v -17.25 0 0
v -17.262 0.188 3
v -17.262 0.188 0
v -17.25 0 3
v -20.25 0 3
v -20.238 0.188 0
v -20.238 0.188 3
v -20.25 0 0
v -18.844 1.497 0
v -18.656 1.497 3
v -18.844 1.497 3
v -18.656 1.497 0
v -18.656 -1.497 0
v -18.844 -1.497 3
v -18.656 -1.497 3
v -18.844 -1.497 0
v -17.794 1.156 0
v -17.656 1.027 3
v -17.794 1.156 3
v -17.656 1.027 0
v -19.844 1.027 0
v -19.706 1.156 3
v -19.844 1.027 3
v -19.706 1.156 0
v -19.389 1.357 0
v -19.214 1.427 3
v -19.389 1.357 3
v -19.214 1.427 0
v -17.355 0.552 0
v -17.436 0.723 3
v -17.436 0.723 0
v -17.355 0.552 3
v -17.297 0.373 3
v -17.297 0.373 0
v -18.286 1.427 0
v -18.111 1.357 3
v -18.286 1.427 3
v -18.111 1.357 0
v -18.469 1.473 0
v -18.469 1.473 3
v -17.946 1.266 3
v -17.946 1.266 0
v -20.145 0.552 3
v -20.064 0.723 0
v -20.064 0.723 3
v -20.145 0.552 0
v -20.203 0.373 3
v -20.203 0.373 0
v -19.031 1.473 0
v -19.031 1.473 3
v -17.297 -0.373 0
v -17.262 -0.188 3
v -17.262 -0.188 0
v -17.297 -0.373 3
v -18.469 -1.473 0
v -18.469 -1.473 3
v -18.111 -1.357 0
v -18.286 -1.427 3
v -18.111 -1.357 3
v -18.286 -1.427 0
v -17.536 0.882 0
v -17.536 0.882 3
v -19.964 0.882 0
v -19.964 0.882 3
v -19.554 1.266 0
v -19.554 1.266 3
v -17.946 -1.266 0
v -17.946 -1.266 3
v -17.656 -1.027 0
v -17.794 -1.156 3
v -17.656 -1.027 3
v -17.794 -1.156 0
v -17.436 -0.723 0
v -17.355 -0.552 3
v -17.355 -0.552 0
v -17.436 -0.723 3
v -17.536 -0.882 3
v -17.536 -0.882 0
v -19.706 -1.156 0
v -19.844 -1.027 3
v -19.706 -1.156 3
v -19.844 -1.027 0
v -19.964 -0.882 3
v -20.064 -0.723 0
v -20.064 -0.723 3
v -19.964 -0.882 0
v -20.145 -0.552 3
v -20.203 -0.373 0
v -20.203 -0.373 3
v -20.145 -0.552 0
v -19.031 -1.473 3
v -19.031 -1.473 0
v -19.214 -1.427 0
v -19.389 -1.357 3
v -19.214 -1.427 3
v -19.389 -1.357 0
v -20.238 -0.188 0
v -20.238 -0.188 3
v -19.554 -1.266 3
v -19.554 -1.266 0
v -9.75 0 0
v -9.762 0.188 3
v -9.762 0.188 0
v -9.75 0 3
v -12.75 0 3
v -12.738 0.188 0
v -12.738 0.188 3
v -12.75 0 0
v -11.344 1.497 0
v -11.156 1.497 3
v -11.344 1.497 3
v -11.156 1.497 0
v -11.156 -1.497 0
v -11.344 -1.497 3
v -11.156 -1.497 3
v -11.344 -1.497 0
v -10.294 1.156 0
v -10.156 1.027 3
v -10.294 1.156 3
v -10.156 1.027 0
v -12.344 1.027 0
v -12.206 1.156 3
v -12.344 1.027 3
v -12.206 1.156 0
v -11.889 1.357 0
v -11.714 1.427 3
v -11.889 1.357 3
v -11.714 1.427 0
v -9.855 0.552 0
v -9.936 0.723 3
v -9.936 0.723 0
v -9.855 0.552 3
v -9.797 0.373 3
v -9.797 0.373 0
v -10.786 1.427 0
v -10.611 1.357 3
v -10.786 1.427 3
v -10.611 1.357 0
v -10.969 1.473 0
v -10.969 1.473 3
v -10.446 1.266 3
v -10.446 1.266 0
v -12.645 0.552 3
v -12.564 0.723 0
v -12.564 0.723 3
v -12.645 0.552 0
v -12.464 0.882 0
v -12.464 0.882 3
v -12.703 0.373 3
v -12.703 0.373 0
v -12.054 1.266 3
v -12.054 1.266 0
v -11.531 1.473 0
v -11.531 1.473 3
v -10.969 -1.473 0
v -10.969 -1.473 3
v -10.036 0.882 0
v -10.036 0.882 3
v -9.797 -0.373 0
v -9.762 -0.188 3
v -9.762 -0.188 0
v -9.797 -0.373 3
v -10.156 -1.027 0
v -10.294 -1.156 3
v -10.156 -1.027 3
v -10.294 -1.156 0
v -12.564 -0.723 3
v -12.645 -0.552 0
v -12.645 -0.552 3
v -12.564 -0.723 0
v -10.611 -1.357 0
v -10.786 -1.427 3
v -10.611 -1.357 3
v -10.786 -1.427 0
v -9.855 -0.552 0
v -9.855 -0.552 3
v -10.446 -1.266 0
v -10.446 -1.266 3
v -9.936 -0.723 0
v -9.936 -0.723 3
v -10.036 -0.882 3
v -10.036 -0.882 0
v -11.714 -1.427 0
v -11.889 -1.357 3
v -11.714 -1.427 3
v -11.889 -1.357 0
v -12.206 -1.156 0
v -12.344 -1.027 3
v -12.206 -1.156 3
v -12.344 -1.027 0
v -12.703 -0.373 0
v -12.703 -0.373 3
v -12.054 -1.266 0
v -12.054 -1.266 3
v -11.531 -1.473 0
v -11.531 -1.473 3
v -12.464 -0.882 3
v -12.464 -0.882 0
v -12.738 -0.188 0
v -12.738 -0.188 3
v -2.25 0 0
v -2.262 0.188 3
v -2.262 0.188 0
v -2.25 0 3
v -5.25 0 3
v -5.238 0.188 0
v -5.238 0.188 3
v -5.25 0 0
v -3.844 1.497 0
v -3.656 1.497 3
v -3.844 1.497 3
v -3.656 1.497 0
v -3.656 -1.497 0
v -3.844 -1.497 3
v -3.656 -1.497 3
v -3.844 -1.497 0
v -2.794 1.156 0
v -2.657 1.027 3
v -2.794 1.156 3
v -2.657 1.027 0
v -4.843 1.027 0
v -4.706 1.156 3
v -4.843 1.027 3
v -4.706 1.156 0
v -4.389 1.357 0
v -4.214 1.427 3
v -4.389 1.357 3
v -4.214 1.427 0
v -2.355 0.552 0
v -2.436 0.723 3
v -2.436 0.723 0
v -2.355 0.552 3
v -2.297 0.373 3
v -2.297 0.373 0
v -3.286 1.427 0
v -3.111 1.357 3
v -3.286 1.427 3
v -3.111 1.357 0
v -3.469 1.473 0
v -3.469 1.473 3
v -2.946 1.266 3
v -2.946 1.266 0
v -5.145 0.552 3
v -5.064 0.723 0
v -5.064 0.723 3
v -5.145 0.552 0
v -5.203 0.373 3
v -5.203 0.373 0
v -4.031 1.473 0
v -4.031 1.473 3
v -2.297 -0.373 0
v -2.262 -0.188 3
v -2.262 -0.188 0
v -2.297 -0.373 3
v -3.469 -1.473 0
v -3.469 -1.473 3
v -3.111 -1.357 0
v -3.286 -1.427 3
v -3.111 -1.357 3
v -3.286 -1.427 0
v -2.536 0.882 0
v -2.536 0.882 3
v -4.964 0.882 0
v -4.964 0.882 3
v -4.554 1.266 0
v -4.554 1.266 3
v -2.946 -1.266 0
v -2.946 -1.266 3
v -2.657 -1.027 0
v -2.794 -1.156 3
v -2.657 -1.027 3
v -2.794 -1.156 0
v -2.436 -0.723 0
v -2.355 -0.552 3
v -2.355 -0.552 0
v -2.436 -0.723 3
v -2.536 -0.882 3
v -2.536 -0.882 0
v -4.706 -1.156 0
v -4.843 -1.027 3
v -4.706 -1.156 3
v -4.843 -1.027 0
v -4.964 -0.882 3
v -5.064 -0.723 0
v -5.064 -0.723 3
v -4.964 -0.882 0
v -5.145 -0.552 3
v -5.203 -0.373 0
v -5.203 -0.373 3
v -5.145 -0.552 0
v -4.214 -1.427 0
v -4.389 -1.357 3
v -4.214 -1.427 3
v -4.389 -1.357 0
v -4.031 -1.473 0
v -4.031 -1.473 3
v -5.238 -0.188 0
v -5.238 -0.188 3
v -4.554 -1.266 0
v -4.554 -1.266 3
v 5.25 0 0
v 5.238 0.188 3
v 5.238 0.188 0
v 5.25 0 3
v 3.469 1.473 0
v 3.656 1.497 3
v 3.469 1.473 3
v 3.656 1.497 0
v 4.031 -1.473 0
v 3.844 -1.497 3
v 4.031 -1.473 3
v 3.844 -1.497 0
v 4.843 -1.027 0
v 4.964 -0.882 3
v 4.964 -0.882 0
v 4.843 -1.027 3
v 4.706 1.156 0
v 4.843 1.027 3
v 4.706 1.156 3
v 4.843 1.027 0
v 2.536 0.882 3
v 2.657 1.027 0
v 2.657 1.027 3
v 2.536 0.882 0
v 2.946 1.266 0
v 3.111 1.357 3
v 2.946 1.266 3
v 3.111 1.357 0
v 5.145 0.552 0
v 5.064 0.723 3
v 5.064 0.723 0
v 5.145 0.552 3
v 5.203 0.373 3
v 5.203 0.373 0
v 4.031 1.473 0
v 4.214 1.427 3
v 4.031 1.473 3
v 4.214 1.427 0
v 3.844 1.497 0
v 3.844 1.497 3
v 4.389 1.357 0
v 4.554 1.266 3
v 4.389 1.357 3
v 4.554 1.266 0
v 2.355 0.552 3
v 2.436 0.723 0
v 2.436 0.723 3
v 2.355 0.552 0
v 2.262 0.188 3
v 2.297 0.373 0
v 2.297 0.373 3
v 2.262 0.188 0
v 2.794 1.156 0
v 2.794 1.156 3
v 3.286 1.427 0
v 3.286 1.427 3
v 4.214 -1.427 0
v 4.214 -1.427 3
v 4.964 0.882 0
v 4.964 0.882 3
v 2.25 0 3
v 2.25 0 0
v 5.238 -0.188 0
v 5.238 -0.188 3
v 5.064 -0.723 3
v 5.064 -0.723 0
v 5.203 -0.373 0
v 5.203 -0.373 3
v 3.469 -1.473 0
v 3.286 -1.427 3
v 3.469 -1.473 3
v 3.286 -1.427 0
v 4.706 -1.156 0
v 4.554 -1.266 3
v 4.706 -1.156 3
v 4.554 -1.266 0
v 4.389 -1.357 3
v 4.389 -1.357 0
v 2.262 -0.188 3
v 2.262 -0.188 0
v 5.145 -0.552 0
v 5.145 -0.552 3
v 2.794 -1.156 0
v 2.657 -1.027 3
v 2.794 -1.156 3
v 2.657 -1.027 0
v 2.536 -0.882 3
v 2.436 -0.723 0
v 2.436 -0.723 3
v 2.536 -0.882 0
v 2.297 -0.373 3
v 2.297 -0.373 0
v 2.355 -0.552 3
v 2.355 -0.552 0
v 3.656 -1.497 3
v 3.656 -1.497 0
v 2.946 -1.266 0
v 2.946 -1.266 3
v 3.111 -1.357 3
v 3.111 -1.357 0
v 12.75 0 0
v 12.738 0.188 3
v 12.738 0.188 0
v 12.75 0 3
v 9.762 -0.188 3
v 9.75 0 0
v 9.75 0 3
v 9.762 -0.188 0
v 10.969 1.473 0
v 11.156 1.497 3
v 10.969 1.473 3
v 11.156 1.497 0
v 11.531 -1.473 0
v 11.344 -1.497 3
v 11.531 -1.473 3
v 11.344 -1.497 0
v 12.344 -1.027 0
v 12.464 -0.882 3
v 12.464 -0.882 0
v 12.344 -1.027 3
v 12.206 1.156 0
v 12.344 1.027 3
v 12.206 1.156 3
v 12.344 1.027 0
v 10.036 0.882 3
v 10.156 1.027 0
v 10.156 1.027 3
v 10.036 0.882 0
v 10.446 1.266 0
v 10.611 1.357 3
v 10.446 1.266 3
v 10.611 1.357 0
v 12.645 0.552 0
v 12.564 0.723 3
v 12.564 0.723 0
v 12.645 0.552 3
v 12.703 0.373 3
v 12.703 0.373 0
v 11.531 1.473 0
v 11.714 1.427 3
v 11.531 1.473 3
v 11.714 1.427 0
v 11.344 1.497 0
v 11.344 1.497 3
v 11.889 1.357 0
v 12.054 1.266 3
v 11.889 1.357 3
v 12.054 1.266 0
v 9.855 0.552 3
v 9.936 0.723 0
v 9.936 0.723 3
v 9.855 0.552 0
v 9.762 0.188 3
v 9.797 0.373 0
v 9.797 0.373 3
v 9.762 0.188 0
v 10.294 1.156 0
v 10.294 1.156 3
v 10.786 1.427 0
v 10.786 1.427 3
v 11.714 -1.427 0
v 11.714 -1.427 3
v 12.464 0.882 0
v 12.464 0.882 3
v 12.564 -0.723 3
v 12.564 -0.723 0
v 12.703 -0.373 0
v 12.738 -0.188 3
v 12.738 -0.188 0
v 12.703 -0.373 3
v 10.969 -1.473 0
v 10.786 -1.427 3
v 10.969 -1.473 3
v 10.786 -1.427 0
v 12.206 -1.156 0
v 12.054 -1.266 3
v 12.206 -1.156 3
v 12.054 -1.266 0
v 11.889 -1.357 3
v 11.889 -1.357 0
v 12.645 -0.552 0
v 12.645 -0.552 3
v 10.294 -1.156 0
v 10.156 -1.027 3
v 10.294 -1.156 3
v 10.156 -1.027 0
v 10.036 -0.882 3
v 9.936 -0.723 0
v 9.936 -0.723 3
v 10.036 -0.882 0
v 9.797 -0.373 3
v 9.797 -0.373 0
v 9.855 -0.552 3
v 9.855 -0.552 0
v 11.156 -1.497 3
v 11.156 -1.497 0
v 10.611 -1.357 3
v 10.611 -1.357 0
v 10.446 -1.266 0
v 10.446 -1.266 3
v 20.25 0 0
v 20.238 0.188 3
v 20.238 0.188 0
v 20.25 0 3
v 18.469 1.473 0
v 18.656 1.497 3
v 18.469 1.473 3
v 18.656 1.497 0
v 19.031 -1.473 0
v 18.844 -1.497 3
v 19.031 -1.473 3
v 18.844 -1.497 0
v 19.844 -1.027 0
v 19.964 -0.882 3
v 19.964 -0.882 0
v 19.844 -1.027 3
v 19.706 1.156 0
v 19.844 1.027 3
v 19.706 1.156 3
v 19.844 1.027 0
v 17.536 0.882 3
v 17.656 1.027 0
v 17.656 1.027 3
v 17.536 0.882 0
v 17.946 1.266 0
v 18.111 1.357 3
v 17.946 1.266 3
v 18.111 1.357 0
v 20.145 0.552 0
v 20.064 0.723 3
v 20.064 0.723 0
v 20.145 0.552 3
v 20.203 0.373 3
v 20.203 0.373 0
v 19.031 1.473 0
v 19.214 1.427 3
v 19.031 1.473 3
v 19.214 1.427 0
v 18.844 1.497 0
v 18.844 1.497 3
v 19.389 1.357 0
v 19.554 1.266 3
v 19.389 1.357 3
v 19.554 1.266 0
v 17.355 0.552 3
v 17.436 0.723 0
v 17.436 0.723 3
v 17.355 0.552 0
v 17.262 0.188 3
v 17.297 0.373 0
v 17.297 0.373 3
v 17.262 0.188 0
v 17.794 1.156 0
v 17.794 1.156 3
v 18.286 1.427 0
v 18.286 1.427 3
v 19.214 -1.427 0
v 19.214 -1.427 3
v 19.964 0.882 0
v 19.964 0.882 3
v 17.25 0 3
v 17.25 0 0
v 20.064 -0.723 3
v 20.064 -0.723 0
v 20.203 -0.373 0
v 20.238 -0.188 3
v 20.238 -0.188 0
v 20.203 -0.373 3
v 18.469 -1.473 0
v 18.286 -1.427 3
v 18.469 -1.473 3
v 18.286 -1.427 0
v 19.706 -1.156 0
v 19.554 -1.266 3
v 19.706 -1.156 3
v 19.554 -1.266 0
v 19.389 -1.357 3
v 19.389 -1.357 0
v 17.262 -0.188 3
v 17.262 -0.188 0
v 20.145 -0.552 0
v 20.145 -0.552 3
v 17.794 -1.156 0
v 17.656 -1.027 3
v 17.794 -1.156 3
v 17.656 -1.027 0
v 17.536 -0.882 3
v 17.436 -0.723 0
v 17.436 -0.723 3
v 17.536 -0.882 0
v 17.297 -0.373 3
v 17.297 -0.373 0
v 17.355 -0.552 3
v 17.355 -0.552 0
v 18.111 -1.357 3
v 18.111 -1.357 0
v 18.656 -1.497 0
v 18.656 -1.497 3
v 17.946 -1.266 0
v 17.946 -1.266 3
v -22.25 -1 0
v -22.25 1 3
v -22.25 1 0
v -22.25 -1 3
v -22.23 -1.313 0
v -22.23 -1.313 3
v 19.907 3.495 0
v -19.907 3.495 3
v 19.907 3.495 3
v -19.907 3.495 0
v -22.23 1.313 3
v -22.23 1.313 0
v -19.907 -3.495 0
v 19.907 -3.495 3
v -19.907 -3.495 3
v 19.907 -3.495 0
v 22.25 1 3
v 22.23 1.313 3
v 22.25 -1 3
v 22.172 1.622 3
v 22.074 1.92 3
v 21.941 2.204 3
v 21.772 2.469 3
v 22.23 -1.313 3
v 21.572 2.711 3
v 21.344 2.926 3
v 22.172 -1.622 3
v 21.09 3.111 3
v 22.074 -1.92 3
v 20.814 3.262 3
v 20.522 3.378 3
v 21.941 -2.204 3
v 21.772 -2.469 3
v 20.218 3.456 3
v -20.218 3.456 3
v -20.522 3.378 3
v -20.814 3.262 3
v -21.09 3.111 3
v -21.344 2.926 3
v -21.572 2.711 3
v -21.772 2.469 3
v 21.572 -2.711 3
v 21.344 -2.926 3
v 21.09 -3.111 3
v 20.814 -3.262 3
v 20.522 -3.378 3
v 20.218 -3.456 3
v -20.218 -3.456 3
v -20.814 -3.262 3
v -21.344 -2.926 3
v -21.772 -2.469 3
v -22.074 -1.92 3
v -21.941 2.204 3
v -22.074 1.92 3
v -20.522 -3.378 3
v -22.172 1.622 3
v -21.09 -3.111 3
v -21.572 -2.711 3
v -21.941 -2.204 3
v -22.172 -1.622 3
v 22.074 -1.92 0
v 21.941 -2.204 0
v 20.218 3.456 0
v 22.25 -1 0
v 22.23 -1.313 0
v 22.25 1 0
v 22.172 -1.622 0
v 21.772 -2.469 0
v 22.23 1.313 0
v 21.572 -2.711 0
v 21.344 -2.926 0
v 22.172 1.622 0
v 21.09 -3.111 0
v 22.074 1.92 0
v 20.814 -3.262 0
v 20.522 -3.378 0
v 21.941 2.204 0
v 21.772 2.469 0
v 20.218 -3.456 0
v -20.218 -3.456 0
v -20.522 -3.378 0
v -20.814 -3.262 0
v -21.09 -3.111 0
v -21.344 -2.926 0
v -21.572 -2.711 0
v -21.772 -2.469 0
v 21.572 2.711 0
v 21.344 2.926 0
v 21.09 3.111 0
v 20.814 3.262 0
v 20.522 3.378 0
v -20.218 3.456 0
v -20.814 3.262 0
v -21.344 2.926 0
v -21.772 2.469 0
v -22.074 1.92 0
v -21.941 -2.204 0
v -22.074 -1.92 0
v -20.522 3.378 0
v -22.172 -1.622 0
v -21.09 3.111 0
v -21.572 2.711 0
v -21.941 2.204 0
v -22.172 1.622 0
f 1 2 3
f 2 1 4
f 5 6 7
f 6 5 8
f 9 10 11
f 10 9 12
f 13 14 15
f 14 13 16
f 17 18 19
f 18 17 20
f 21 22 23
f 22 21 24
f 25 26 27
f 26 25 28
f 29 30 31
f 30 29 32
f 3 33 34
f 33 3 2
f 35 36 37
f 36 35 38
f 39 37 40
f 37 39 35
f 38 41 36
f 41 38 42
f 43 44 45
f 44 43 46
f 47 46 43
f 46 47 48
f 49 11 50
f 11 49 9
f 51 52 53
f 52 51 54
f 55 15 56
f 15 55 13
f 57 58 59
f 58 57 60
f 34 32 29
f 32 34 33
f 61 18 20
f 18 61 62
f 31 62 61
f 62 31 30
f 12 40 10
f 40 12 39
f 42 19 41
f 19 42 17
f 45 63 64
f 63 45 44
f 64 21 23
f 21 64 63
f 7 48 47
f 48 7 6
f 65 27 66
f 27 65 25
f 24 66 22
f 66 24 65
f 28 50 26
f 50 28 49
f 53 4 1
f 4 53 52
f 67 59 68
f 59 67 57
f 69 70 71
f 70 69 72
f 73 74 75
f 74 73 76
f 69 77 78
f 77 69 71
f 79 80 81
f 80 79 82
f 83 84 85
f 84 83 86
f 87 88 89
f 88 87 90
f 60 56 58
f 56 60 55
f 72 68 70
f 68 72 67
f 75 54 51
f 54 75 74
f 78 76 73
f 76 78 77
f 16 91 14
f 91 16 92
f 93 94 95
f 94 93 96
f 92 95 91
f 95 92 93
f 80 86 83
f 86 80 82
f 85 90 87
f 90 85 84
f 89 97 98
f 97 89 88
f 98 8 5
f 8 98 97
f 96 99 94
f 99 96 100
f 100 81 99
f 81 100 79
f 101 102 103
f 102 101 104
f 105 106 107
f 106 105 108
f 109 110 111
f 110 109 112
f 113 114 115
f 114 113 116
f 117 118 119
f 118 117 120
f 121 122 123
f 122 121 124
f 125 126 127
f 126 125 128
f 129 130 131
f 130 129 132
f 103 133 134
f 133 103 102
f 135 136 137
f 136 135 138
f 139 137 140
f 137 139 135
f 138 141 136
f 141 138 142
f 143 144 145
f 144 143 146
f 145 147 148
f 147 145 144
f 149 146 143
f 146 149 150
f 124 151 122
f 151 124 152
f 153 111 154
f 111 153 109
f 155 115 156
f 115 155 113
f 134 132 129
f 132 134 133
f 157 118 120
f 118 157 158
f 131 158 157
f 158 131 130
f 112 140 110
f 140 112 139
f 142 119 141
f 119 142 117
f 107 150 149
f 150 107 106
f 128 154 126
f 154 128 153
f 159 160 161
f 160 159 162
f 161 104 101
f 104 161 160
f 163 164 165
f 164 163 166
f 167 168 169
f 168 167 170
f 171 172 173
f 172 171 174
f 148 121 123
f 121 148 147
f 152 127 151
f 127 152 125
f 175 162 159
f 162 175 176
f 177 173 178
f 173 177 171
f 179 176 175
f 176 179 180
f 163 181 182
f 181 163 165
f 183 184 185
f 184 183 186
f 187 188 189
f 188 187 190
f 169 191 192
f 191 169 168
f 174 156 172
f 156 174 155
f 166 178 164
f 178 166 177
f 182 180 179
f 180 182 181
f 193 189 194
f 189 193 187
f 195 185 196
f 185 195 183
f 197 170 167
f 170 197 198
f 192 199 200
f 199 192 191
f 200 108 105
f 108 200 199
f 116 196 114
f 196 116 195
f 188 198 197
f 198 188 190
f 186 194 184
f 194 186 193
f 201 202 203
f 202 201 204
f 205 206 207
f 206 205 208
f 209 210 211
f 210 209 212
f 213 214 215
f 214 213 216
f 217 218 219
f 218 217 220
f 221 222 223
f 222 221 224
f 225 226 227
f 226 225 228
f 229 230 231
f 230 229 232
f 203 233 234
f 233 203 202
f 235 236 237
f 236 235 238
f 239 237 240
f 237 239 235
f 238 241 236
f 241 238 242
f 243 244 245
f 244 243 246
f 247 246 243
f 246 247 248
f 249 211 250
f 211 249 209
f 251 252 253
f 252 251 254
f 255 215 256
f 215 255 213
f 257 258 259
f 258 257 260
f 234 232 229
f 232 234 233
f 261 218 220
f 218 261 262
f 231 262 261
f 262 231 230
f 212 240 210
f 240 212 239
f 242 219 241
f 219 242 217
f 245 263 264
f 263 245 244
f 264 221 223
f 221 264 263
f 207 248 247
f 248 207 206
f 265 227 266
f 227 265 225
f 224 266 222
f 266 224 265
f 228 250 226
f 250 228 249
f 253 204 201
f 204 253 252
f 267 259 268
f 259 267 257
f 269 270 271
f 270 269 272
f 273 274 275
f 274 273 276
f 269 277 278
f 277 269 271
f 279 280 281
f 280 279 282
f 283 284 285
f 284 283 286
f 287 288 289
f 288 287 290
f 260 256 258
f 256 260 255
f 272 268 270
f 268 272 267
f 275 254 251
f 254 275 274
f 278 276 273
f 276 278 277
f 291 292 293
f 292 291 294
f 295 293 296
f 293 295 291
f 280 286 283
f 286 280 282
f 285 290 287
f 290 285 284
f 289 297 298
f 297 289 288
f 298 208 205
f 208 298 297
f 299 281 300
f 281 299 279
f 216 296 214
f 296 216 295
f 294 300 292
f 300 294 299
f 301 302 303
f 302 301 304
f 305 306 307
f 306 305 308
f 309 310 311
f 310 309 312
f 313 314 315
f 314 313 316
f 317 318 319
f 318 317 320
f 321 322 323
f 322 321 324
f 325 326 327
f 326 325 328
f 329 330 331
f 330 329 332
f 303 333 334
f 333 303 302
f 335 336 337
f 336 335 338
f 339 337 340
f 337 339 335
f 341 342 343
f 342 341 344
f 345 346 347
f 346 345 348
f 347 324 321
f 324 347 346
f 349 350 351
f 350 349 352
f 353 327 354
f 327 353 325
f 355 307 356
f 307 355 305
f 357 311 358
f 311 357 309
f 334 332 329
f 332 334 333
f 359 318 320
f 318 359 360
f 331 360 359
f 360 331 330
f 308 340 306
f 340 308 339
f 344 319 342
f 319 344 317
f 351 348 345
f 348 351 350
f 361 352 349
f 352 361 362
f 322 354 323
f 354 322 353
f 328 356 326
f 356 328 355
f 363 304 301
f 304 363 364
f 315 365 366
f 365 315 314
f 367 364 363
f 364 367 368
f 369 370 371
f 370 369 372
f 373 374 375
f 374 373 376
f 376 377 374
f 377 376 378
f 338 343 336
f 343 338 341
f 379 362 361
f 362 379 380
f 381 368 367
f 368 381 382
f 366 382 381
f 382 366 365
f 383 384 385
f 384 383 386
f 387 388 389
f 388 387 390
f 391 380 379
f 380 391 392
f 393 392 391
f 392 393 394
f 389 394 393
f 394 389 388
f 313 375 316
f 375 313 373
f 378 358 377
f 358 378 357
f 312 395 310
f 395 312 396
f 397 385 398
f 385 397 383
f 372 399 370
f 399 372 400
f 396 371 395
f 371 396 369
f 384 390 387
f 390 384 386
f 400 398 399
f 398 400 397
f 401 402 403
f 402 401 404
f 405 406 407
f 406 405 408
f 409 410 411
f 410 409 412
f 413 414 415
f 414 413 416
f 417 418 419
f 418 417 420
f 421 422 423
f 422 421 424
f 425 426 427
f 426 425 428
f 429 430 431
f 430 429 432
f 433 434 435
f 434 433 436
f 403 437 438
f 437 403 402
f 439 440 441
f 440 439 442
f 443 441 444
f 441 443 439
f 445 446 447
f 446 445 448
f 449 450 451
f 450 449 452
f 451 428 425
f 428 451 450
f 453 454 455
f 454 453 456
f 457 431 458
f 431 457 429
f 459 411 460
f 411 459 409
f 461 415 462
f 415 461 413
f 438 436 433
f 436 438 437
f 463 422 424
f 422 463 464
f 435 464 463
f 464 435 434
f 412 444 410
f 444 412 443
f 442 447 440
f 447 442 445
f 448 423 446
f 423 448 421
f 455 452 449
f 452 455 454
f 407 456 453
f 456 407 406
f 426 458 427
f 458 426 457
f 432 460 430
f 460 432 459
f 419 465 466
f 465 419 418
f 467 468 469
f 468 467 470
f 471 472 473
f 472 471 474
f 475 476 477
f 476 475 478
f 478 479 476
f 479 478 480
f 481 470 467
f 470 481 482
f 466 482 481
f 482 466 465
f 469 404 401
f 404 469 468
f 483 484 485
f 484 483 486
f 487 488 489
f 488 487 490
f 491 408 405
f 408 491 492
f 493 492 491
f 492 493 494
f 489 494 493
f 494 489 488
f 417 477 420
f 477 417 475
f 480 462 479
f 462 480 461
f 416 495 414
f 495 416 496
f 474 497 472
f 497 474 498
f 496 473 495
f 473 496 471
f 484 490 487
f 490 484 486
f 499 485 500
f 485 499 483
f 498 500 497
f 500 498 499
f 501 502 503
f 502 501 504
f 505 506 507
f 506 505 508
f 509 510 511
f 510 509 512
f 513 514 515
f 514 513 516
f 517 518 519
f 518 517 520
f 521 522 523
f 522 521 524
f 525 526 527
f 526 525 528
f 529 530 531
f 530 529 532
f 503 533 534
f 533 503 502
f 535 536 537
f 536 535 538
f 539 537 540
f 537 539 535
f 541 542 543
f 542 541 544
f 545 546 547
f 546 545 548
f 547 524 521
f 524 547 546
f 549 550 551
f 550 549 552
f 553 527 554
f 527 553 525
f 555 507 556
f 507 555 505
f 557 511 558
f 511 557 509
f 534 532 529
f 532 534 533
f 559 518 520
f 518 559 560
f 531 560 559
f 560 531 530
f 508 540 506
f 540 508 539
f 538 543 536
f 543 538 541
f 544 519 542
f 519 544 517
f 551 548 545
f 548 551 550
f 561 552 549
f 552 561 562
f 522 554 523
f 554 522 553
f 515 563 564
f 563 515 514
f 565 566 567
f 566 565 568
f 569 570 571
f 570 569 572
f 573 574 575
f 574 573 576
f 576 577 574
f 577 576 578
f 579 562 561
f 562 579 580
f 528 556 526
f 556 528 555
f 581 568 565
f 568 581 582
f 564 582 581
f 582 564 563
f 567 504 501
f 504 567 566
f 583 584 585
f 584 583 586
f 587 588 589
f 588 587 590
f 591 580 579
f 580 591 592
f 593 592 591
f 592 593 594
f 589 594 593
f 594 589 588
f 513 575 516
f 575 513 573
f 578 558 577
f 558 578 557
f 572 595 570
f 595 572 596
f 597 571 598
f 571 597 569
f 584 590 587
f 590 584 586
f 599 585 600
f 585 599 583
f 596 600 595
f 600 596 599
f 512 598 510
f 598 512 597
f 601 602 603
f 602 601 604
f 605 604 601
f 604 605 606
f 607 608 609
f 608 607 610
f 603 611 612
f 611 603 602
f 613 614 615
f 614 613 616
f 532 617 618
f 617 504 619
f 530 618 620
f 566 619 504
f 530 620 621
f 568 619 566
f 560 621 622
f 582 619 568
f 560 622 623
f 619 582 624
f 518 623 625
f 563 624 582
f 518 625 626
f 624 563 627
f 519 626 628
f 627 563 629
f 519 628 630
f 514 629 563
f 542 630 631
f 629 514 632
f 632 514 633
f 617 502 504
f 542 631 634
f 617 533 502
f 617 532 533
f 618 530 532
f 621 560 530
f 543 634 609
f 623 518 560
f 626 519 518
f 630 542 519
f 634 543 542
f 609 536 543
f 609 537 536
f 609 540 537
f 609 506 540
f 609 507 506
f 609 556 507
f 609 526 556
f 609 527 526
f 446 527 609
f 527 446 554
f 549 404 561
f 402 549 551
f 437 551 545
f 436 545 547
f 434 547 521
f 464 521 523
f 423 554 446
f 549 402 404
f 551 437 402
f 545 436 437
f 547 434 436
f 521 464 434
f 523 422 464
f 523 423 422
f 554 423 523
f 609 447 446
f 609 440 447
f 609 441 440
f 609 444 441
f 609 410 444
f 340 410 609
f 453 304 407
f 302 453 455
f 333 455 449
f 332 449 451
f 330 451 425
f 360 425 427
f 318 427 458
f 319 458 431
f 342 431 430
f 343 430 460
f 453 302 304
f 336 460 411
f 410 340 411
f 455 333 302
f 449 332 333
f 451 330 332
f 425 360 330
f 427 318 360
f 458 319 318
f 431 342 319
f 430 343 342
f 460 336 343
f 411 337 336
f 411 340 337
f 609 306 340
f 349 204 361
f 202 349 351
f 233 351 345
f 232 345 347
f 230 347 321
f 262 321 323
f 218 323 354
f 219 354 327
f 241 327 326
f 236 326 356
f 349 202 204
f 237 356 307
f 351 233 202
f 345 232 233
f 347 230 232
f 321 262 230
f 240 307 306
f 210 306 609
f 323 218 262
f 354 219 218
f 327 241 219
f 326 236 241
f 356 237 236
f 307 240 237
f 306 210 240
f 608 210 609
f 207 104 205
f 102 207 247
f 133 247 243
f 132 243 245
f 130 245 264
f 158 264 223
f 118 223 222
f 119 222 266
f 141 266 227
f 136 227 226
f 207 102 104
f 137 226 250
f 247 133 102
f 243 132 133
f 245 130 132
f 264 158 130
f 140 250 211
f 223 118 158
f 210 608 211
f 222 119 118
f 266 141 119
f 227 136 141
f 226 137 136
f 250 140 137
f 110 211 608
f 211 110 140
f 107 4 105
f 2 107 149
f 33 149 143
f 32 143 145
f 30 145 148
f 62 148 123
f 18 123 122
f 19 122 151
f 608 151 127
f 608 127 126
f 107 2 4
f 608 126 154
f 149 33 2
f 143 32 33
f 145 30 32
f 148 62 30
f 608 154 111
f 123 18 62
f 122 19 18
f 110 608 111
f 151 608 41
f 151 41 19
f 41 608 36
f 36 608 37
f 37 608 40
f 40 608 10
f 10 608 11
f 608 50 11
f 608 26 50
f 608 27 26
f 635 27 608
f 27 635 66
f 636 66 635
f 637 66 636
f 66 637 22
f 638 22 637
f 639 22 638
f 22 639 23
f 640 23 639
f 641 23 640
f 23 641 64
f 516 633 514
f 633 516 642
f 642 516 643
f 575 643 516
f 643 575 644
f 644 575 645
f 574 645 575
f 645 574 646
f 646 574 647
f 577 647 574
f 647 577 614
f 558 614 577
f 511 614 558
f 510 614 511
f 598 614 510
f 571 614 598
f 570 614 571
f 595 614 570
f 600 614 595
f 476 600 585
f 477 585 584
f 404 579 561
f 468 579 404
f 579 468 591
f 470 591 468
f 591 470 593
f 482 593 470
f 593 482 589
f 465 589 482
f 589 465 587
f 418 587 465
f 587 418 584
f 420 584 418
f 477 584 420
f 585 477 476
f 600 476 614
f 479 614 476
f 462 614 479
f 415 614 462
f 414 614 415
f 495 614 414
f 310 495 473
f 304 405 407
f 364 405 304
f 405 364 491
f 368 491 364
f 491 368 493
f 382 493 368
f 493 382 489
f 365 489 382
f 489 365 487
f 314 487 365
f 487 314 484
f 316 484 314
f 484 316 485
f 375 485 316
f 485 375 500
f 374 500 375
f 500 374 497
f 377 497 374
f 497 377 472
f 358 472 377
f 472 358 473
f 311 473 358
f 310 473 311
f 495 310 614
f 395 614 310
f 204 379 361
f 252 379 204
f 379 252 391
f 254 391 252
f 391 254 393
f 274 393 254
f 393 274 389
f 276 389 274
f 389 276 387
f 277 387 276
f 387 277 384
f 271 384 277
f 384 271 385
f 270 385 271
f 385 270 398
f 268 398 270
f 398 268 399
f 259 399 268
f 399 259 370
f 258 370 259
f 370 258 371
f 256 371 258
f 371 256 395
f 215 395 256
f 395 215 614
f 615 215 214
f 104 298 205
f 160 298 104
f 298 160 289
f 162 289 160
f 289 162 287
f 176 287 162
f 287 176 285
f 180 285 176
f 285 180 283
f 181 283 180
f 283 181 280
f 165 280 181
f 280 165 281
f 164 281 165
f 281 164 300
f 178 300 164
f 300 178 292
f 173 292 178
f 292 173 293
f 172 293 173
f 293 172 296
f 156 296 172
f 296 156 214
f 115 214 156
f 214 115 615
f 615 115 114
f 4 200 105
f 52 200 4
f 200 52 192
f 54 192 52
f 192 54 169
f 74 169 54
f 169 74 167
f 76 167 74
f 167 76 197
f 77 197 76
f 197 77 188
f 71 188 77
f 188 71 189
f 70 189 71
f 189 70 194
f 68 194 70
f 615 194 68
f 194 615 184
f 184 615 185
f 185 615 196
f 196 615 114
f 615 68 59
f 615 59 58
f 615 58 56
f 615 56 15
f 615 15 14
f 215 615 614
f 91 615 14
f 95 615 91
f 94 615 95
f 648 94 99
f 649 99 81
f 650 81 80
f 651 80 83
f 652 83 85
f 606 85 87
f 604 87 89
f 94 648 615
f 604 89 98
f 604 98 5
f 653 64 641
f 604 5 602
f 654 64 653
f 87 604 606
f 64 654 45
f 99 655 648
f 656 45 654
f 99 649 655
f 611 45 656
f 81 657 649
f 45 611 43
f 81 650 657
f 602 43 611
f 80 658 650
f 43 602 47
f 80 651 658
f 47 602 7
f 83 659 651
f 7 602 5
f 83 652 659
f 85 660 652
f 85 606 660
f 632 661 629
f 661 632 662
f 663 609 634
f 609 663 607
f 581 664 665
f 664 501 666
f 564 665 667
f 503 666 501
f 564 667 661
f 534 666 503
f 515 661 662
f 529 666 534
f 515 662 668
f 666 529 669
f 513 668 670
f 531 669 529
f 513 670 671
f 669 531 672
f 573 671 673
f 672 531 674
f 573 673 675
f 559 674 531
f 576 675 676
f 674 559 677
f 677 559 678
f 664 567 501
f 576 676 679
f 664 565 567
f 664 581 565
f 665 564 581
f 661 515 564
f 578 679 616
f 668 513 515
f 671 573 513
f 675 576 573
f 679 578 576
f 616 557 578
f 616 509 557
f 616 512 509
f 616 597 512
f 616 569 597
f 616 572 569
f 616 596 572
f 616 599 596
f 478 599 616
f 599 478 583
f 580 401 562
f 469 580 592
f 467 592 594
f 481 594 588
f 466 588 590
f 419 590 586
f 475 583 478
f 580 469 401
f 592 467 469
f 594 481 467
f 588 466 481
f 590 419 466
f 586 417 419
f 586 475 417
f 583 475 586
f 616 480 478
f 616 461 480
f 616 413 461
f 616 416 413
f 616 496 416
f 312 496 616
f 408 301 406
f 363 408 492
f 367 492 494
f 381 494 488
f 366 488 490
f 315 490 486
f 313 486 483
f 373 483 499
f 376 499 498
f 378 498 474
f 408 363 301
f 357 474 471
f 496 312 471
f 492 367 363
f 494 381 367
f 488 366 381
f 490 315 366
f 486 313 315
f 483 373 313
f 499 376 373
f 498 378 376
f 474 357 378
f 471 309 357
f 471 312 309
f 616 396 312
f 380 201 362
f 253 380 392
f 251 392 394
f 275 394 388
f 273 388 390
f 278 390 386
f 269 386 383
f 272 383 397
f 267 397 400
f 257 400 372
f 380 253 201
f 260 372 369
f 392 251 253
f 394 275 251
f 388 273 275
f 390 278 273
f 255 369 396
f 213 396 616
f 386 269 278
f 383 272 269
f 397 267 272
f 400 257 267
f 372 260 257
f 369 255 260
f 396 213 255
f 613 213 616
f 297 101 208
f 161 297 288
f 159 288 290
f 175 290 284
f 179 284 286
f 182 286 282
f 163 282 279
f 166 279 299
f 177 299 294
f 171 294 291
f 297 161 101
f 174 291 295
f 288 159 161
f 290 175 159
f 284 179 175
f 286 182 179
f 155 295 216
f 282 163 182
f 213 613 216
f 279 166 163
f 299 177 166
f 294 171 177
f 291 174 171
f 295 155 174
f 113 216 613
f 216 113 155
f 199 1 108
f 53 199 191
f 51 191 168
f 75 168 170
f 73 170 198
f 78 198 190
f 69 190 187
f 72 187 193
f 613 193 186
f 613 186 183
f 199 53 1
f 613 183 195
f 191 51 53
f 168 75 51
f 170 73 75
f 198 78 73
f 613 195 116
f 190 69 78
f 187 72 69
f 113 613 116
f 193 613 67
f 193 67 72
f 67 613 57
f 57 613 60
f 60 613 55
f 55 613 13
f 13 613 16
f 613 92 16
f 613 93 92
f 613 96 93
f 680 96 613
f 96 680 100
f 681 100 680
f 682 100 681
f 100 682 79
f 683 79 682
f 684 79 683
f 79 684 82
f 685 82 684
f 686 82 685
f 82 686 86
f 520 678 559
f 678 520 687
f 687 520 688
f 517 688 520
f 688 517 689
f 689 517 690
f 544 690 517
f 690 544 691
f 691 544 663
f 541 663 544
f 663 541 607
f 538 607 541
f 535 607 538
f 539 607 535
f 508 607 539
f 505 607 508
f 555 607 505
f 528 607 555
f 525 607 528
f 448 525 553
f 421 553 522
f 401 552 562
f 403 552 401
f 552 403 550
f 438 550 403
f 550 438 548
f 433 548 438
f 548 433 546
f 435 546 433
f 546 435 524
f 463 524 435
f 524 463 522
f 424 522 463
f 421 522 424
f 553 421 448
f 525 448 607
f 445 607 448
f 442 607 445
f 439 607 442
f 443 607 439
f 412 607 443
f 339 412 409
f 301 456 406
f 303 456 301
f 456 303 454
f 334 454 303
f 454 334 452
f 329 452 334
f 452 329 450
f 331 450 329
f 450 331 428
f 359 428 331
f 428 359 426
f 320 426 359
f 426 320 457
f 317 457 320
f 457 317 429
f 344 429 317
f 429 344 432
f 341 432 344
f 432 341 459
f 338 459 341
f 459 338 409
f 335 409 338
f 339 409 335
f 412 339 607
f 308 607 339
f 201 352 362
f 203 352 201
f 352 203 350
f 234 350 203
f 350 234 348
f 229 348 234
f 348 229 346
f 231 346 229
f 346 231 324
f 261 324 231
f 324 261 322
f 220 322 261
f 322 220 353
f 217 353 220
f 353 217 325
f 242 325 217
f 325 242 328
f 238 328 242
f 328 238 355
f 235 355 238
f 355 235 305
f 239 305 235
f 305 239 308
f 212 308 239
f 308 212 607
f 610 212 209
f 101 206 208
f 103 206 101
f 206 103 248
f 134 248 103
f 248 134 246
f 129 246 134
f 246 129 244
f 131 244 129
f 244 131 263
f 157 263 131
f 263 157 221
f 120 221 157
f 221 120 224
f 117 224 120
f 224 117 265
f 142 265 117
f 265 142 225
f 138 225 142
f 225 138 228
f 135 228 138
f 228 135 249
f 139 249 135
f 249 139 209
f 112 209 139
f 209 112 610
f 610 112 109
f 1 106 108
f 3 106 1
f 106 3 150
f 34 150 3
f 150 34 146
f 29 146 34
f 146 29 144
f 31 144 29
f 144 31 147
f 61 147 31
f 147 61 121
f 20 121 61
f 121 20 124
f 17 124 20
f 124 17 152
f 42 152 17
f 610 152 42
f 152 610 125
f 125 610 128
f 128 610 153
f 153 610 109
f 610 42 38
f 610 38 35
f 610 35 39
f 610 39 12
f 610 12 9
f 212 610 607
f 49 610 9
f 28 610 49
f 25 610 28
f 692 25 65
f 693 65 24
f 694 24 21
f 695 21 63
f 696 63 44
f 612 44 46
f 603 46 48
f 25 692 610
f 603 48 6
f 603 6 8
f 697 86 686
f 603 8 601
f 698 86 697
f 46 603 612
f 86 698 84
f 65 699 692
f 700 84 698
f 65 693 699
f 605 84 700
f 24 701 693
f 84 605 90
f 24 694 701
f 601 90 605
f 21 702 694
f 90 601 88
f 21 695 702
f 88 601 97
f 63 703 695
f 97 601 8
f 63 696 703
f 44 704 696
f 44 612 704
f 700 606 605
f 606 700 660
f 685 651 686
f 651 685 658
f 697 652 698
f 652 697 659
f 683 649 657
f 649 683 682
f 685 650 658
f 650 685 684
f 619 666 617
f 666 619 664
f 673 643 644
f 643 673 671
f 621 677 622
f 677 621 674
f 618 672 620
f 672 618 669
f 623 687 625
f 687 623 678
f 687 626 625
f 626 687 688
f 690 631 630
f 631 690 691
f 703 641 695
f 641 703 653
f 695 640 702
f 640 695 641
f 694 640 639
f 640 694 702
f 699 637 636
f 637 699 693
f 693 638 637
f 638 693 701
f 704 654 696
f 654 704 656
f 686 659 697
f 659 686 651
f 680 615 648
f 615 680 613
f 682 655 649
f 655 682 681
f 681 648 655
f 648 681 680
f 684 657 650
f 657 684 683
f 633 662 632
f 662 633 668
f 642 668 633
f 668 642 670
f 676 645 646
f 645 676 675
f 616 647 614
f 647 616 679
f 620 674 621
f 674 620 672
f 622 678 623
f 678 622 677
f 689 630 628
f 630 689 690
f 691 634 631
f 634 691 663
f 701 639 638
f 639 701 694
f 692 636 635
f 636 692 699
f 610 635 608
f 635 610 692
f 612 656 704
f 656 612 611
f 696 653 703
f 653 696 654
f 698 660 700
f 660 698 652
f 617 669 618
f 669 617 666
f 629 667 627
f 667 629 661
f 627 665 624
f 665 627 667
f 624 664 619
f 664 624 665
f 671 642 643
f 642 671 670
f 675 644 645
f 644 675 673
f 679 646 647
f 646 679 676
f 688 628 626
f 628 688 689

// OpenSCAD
$fn = 50;


difference() {
	union() {
		translate(v = [0, 0, 0]) {
			rotate(a = [0, 0, 0]) {
				hull() {
					translate(v = [-19.7500000000, 1.0000000000, 0]) {
						rotate(a = [0, 0, 0]) {
							translate(v = [0, 0, 0]) {
								rotate(a = [0, 0, 0]) {
									cylinder(h = 3, r = 2.5000000000);
								}
							}
						}
					}
					translate(v = [19.7500000000, 1.0000000000, 0]) {
						rotate(a = [0, 0, 0]) {
							translate(v = [0, 0, 0]) {
								rotate(a = [0, 0, 0]) {
									cylinder(h = 3, r = 2.5000000000);
								}
							}
						}
					}
					translate(v = [-19.7500000000, -1.0000000000, 0]) {
						rotate(a = [0, 0, 0]) {
							translate(v = [0, 0, 0]) {
								rotate(a = [0, 0, 0]) {
									cylinder(h = 3, r = 2.5000000000);
								}
							}
						}
					}
					translate(v = [19.7500000000, -1.0000000000, 0]) {
						rotate(a = [0, 0, 0]) {
							translate(v = [0, 0, 0]) {
								rotate(a = [0, 0, 0]) {
									cylinder(h = 3, r = 2.5000000000);
								}
							}
						}
					}
				}
			}
		}
	}
	union() {
		translate(v = [-18.7500000000, 0.0000000000, 0]) {
			rotate(a = [0, 0, 0]) {
				translate(v = [0, 0, -50]) {
					rotate(a = [0, 0, 0]) {
						cylinder(h = 100, r = 1.5000000000);
					}
				}
			}
		}
		translate(v = [-11.2500000000, 0.0000000000, 0]) {
			rotate(a = [0, 0, 0]) {
				translate(v = [0, 0, -50]) {
					rotate(a = [0, 0, 0]) {
						cylinder(h = 100, r = 1.5000000000);
					}
				}
			}
		}
		translate(v = [-3.7500000000, 0.0000000000, 0]) {
			rotate(a = [0, 0, 0]) {
				translate(v = [0, 0, -50]) {
					rotate(a = [0, 0, 0]) {
						cylinder(h = 100, r = 1.5000000000);
					}
				}
			}
		}
		translate(v = [3.7500000000, 0.0000000000, 0]) {
			rotate(a = [0, 0, 0]) {
				translate(v = [0, 0, -50]) {
					rotate(a = [0, 0, 0]) {
						cylinder(h = 100, r = 1.5000000000);
					}
				}
			}
		}
		translate(v = [11.2500000000, 0.0000000000, 0]) {
			rotate(a = [0, 0, 0]) {
				translate(v = [0, 0, -50]) {
					rotate(a = [0, 0, 0]) {
						cylinder(h = 100, r = 1.5000000000);
					}
				}
			}
		}
		translate(v = [18.7500000000, 0.0000000000, 0]) {
			rotate(a = [0, 0, 0]) {
				translate(v = [0, 0, -50]) {
					rotate(a = [0, 0, 0]) {
						cylinder(h = 100, r = 1.5000000000);
					}
				}
			}
		}
	}
}
